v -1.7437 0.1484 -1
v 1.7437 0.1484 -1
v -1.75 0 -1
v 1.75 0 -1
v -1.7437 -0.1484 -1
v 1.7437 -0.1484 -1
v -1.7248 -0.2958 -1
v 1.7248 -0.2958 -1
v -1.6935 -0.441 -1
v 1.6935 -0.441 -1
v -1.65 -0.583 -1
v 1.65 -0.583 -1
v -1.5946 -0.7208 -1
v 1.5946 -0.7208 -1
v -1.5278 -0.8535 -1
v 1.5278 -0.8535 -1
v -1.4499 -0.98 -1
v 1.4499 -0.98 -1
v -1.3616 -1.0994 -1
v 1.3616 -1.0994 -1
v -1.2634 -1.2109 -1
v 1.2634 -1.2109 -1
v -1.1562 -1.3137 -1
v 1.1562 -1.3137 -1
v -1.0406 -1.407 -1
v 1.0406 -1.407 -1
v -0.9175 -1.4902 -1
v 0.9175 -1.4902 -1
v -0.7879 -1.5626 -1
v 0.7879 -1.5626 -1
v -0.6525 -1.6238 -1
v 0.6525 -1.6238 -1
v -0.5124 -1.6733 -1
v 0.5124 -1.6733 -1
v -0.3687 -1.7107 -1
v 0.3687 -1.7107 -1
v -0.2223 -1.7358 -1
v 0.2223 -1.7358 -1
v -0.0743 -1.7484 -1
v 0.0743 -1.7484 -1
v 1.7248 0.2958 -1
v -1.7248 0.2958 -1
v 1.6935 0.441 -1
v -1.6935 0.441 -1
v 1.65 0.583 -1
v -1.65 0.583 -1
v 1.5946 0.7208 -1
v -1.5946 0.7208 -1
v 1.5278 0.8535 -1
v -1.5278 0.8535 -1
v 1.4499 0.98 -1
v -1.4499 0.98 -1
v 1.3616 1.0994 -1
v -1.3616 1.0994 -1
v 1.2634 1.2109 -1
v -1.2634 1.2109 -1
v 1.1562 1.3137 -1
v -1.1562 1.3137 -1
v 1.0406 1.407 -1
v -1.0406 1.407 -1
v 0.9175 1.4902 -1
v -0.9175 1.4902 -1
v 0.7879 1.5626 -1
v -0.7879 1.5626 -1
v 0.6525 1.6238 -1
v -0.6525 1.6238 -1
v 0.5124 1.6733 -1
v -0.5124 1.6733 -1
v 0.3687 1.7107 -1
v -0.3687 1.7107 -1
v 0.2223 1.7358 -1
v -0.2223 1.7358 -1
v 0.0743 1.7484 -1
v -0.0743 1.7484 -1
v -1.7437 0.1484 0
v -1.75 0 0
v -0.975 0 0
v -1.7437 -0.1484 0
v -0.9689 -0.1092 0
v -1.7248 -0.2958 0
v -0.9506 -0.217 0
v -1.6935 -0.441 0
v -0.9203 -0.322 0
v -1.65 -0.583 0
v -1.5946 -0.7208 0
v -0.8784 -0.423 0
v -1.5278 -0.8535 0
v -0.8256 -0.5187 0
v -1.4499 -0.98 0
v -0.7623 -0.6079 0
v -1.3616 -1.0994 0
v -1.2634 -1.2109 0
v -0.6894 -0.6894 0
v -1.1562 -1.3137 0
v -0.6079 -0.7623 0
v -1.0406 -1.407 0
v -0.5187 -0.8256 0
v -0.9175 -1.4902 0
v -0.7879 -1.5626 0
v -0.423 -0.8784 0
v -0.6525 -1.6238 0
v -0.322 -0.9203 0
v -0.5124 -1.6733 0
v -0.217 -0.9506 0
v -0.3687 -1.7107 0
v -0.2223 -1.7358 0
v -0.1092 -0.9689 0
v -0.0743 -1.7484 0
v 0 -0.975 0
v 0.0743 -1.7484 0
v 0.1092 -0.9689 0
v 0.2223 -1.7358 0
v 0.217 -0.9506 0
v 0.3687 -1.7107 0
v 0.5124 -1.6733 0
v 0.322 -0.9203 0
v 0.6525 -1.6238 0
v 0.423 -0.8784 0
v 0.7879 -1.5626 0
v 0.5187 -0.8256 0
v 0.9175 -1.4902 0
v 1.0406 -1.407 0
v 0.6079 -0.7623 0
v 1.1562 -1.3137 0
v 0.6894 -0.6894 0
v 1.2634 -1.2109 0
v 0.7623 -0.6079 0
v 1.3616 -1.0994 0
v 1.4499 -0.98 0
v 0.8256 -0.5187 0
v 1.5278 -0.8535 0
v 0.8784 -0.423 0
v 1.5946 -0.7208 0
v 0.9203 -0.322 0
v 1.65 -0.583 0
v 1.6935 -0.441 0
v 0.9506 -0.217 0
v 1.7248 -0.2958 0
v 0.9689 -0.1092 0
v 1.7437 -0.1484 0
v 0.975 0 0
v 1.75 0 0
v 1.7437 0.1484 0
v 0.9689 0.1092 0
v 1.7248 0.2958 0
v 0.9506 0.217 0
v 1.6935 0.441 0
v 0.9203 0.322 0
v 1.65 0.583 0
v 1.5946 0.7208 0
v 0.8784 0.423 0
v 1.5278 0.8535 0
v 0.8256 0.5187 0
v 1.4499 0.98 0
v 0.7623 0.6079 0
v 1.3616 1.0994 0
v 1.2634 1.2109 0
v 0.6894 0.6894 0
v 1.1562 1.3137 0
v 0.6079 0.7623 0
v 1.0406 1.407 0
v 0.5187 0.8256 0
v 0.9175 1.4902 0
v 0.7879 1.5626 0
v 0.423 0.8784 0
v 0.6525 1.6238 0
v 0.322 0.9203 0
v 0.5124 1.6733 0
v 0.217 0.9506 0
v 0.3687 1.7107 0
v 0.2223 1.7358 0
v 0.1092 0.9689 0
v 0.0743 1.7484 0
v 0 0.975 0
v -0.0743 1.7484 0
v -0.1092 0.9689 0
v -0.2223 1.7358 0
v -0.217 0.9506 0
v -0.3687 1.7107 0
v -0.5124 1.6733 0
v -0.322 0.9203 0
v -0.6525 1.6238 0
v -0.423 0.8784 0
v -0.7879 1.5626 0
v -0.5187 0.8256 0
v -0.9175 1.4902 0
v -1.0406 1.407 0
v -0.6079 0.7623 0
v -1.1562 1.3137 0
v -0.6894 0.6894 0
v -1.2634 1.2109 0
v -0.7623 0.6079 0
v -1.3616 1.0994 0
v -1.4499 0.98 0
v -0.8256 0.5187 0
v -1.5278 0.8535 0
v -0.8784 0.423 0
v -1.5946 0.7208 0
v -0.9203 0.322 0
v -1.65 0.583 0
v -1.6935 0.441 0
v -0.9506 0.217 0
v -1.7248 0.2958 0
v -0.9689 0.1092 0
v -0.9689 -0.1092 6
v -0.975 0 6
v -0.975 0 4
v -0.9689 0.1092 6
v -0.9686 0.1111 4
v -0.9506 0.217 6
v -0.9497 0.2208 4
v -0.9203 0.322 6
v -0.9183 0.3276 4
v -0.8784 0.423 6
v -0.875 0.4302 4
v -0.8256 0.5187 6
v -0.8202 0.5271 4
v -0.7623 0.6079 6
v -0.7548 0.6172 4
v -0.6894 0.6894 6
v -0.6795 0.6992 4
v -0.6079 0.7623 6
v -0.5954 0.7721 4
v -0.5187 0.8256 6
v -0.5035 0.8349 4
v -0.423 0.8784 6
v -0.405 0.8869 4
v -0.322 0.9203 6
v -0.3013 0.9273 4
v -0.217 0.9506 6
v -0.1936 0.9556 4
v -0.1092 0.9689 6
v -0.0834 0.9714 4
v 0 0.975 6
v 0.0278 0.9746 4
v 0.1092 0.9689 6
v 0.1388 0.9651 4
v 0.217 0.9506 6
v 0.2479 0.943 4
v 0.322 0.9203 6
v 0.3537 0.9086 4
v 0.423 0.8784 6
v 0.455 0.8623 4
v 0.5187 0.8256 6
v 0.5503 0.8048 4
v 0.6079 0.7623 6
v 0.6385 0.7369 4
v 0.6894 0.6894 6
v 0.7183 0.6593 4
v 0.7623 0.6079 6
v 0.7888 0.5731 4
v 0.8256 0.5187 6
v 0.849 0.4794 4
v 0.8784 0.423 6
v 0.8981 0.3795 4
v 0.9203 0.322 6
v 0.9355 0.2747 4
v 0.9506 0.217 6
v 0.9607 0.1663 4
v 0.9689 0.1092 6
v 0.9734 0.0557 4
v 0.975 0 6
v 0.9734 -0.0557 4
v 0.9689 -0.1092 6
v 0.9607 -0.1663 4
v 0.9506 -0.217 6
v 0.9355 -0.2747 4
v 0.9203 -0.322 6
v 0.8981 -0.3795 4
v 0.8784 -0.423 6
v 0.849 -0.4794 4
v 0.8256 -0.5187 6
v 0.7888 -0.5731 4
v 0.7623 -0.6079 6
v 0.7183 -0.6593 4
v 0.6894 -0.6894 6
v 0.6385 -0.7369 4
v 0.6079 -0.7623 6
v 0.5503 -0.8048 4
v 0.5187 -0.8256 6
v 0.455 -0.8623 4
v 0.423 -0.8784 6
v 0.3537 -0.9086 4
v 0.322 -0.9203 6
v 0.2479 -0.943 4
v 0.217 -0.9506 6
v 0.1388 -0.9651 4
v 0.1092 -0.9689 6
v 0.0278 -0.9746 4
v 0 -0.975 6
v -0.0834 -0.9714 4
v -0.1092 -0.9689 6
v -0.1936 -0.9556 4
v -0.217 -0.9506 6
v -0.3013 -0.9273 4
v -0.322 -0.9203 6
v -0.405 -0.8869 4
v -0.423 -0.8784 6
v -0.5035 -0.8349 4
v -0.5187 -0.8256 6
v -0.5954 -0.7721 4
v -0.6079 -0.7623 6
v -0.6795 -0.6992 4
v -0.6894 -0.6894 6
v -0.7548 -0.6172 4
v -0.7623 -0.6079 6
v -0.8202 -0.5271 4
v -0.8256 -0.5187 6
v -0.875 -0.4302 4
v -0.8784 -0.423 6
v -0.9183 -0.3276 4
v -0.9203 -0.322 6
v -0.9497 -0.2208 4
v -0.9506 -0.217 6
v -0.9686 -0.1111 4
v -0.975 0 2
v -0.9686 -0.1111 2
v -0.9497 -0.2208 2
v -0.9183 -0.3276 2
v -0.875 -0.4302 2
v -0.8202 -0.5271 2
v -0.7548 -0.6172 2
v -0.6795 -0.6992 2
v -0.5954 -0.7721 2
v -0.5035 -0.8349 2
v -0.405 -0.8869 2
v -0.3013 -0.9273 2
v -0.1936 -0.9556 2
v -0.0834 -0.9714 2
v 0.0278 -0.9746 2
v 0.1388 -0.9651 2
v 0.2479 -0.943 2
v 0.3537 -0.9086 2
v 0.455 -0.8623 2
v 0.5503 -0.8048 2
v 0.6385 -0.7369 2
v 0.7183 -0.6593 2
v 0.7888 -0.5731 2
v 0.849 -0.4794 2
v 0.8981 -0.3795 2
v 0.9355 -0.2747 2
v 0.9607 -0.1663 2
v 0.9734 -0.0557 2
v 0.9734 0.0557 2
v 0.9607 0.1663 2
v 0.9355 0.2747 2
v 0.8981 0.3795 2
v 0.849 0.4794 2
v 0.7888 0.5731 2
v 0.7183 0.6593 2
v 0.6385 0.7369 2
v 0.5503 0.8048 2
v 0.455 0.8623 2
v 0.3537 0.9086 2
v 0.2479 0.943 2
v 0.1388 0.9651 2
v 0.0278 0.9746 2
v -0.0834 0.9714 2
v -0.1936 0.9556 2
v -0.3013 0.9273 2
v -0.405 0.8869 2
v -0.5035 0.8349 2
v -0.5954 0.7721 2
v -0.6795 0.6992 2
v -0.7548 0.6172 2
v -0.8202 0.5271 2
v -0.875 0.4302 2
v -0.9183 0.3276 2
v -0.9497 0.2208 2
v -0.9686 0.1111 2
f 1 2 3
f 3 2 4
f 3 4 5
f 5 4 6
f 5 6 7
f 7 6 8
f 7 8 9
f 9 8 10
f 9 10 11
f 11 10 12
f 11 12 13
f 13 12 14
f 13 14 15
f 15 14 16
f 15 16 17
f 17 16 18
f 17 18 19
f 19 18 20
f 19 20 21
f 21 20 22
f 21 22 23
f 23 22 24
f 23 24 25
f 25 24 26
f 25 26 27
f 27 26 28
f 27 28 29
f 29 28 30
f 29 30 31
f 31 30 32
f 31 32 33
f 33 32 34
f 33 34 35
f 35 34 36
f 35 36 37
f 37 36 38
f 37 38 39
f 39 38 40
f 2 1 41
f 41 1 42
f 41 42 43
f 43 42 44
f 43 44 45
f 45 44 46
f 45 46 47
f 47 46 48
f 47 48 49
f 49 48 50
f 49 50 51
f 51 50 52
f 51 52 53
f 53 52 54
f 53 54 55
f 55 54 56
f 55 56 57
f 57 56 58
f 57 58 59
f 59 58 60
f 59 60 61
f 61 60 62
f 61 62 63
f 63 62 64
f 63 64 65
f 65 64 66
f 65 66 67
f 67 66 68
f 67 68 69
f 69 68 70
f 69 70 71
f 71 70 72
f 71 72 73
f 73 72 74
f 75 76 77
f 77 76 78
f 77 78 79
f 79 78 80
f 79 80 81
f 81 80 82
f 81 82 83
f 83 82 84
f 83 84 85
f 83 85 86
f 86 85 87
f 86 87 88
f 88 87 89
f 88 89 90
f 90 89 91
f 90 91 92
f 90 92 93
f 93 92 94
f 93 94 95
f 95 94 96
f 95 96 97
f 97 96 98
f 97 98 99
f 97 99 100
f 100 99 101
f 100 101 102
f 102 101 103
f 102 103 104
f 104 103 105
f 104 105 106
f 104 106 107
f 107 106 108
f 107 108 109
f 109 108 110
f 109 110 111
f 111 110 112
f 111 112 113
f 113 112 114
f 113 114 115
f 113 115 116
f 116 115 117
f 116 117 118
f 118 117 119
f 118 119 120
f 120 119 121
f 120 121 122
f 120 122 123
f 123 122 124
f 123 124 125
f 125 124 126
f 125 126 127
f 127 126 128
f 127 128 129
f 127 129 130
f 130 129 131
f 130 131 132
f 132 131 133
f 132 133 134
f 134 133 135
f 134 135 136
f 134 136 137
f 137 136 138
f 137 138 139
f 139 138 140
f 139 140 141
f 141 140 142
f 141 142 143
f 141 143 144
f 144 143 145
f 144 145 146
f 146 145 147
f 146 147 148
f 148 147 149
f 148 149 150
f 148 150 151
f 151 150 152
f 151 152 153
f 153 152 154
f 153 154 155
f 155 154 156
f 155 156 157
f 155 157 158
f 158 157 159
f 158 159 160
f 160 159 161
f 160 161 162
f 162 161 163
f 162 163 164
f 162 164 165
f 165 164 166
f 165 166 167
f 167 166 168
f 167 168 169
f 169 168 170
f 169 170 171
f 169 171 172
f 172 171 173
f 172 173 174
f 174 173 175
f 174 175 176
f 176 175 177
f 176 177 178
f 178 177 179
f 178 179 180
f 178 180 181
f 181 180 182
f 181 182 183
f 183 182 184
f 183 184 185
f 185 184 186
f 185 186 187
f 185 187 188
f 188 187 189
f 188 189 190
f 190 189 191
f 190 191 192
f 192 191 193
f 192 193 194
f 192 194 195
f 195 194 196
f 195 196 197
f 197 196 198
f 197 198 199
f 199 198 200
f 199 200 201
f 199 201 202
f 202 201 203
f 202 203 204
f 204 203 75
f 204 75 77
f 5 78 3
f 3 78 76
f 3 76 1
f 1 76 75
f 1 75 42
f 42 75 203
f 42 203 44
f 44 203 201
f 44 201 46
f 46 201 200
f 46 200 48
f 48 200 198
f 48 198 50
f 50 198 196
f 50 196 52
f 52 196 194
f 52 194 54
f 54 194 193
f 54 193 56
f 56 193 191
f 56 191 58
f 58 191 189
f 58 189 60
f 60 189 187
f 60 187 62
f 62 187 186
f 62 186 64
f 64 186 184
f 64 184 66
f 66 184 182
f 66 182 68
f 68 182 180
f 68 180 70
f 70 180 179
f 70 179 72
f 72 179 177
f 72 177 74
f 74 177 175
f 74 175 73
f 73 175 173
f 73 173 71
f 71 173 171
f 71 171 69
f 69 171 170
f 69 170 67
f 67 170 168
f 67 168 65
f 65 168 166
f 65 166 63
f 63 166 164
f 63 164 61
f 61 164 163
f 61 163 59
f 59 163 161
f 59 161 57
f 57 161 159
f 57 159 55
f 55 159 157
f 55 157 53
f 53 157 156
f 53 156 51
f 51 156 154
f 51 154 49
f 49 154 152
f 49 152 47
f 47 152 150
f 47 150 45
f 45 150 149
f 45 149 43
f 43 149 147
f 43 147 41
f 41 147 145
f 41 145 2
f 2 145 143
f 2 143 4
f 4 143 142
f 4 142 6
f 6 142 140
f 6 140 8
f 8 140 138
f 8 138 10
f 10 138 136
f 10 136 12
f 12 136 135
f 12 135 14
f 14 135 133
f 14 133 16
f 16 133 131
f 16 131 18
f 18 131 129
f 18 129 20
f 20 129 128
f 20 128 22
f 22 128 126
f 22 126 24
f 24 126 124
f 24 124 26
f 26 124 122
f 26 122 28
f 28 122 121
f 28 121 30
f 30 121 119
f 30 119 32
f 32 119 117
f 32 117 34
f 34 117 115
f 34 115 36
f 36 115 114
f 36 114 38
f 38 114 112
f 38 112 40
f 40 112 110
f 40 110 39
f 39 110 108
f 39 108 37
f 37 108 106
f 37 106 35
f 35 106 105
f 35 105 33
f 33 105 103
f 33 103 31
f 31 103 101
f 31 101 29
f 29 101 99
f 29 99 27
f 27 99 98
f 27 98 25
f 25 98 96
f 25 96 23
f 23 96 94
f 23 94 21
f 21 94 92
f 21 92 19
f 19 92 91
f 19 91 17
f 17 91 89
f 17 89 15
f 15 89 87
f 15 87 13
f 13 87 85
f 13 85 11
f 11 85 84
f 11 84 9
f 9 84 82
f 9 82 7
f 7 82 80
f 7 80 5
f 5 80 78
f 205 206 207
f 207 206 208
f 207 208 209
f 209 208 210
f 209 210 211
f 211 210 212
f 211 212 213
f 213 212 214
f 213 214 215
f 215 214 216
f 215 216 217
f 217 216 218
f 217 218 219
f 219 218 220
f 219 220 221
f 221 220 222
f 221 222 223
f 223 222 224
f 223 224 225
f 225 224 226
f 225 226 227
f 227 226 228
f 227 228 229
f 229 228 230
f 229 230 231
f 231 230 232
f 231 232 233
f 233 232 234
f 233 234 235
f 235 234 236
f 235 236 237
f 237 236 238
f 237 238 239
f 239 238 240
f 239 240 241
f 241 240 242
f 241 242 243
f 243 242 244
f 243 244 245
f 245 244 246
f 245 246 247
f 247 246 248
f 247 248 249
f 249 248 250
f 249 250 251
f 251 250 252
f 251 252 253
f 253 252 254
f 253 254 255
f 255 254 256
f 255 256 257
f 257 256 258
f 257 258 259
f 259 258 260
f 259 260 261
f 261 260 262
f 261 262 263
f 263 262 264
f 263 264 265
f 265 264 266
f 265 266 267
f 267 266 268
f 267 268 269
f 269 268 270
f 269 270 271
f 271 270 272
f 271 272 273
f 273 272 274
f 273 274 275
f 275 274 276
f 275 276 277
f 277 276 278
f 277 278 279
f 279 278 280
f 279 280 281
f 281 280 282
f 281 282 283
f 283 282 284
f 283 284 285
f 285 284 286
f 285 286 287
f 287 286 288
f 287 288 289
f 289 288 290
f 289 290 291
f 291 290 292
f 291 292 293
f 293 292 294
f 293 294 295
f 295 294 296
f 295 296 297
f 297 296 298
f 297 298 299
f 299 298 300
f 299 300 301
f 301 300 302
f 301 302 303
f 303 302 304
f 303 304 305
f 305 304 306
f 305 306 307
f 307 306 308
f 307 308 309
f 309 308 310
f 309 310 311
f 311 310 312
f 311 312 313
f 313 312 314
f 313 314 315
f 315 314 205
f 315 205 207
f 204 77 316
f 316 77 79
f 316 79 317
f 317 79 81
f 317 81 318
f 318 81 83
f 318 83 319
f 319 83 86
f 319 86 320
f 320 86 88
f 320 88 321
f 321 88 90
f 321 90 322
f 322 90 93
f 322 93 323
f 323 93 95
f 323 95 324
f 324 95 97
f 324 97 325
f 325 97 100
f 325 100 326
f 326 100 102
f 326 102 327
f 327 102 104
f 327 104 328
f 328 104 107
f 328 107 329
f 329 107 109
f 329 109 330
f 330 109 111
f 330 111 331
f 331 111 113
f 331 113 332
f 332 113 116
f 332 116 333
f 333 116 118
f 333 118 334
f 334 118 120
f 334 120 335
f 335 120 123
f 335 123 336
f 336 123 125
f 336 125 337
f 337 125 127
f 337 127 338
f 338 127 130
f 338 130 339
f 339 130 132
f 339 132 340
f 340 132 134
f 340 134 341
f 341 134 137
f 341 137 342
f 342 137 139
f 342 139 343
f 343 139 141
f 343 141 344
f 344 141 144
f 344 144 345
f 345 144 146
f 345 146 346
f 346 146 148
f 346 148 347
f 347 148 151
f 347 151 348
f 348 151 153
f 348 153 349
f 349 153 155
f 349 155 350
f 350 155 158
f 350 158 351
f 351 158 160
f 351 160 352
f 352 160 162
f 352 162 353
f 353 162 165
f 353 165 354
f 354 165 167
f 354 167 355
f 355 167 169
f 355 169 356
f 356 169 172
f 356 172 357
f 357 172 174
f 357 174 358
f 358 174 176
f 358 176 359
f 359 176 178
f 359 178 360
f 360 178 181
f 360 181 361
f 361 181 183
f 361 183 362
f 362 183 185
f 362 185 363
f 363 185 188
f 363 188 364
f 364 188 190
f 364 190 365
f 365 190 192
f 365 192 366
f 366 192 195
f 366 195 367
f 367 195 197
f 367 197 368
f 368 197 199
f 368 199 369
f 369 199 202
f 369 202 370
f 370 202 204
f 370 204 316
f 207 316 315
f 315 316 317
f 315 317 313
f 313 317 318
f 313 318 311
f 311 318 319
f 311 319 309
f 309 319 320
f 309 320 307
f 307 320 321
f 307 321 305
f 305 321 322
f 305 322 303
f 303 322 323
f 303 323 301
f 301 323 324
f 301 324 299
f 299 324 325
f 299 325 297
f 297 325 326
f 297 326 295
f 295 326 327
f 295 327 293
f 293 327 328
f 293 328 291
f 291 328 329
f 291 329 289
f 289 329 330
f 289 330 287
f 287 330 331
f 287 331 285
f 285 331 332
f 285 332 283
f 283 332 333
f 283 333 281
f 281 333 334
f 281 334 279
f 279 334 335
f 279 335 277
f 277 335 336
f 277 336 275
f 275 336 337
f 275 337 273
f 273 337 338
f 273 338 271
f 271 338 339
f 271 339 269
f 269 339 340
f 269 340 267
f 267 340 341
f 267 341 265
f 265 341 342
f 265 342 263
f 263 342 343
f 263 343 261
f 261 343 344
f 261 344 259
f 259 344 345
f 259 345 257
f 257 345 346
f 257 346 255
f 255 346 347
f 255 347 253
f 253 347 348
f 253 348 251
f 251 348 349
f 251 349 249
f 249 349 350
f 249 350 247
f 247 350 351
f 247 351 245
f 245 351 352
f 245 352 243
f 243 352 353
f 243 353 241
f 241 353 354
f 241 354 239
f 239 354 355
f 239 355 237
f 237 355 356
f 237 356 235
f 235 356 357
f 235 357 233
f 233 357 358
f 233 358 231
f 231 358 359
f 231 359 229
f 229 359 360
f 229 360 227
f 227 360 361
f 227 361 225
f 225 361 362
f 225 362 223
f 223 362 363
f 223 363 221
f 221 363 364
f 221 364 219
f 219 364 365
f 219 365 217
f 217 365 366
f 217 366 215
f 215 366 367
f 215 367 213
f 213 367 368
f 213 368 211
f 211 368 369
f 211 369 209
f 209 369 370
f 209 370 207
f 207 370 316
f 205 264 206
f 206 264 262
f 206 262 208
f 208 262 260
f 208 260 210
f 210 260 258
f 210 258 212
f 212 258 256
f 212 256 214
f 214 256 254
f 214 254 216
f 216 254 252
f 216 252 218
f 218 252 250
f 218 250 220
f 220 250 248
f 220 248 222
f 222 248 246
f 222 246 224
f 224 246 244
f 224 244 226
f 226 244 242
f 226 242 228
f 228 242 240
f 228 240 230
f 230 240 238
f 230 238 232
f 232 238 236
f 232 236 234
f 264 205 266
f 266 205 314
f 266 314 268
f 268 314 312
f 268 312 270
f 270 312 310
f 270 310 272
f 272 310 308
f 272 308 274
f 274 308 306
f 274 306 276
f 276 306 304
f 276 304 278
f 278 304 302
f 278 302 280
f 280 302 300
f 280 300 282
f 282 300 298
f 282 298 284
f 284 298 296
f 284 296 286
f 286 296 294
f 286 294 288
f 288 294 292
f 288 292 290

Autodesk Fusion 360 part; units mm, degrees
sketch "Sketch1" plane through (0, 0, 0) normal (0, 0, 1) x (1, 0, 0)
  circle A0 centre (0, 0) radius 0.975
  dimension "d1" = 1.95
extrude "Extrude1" add sketch "Sketch1" along normal blind 6
sketch "Sketch2" plane through (0, 0, 0) normal (0, 0, -1) x (1, 0, 0)
  circle A0 centre (0, 0) radius 0.975
  circle A1 centre (0, 0) radius 1.75
  dimension "d4" = 3.5
extrude "Extrude2" add sketch "Sketch2" along normal blind 1.5 contours A0 | A1
extrude "Extrude3" cut 1 faces at (-0.5048, -0.8743, -1.5) along direction (0, 0, 1) blind 0.5
equation "d4 = ( 1.75 * 2 ) * 1 mm"
